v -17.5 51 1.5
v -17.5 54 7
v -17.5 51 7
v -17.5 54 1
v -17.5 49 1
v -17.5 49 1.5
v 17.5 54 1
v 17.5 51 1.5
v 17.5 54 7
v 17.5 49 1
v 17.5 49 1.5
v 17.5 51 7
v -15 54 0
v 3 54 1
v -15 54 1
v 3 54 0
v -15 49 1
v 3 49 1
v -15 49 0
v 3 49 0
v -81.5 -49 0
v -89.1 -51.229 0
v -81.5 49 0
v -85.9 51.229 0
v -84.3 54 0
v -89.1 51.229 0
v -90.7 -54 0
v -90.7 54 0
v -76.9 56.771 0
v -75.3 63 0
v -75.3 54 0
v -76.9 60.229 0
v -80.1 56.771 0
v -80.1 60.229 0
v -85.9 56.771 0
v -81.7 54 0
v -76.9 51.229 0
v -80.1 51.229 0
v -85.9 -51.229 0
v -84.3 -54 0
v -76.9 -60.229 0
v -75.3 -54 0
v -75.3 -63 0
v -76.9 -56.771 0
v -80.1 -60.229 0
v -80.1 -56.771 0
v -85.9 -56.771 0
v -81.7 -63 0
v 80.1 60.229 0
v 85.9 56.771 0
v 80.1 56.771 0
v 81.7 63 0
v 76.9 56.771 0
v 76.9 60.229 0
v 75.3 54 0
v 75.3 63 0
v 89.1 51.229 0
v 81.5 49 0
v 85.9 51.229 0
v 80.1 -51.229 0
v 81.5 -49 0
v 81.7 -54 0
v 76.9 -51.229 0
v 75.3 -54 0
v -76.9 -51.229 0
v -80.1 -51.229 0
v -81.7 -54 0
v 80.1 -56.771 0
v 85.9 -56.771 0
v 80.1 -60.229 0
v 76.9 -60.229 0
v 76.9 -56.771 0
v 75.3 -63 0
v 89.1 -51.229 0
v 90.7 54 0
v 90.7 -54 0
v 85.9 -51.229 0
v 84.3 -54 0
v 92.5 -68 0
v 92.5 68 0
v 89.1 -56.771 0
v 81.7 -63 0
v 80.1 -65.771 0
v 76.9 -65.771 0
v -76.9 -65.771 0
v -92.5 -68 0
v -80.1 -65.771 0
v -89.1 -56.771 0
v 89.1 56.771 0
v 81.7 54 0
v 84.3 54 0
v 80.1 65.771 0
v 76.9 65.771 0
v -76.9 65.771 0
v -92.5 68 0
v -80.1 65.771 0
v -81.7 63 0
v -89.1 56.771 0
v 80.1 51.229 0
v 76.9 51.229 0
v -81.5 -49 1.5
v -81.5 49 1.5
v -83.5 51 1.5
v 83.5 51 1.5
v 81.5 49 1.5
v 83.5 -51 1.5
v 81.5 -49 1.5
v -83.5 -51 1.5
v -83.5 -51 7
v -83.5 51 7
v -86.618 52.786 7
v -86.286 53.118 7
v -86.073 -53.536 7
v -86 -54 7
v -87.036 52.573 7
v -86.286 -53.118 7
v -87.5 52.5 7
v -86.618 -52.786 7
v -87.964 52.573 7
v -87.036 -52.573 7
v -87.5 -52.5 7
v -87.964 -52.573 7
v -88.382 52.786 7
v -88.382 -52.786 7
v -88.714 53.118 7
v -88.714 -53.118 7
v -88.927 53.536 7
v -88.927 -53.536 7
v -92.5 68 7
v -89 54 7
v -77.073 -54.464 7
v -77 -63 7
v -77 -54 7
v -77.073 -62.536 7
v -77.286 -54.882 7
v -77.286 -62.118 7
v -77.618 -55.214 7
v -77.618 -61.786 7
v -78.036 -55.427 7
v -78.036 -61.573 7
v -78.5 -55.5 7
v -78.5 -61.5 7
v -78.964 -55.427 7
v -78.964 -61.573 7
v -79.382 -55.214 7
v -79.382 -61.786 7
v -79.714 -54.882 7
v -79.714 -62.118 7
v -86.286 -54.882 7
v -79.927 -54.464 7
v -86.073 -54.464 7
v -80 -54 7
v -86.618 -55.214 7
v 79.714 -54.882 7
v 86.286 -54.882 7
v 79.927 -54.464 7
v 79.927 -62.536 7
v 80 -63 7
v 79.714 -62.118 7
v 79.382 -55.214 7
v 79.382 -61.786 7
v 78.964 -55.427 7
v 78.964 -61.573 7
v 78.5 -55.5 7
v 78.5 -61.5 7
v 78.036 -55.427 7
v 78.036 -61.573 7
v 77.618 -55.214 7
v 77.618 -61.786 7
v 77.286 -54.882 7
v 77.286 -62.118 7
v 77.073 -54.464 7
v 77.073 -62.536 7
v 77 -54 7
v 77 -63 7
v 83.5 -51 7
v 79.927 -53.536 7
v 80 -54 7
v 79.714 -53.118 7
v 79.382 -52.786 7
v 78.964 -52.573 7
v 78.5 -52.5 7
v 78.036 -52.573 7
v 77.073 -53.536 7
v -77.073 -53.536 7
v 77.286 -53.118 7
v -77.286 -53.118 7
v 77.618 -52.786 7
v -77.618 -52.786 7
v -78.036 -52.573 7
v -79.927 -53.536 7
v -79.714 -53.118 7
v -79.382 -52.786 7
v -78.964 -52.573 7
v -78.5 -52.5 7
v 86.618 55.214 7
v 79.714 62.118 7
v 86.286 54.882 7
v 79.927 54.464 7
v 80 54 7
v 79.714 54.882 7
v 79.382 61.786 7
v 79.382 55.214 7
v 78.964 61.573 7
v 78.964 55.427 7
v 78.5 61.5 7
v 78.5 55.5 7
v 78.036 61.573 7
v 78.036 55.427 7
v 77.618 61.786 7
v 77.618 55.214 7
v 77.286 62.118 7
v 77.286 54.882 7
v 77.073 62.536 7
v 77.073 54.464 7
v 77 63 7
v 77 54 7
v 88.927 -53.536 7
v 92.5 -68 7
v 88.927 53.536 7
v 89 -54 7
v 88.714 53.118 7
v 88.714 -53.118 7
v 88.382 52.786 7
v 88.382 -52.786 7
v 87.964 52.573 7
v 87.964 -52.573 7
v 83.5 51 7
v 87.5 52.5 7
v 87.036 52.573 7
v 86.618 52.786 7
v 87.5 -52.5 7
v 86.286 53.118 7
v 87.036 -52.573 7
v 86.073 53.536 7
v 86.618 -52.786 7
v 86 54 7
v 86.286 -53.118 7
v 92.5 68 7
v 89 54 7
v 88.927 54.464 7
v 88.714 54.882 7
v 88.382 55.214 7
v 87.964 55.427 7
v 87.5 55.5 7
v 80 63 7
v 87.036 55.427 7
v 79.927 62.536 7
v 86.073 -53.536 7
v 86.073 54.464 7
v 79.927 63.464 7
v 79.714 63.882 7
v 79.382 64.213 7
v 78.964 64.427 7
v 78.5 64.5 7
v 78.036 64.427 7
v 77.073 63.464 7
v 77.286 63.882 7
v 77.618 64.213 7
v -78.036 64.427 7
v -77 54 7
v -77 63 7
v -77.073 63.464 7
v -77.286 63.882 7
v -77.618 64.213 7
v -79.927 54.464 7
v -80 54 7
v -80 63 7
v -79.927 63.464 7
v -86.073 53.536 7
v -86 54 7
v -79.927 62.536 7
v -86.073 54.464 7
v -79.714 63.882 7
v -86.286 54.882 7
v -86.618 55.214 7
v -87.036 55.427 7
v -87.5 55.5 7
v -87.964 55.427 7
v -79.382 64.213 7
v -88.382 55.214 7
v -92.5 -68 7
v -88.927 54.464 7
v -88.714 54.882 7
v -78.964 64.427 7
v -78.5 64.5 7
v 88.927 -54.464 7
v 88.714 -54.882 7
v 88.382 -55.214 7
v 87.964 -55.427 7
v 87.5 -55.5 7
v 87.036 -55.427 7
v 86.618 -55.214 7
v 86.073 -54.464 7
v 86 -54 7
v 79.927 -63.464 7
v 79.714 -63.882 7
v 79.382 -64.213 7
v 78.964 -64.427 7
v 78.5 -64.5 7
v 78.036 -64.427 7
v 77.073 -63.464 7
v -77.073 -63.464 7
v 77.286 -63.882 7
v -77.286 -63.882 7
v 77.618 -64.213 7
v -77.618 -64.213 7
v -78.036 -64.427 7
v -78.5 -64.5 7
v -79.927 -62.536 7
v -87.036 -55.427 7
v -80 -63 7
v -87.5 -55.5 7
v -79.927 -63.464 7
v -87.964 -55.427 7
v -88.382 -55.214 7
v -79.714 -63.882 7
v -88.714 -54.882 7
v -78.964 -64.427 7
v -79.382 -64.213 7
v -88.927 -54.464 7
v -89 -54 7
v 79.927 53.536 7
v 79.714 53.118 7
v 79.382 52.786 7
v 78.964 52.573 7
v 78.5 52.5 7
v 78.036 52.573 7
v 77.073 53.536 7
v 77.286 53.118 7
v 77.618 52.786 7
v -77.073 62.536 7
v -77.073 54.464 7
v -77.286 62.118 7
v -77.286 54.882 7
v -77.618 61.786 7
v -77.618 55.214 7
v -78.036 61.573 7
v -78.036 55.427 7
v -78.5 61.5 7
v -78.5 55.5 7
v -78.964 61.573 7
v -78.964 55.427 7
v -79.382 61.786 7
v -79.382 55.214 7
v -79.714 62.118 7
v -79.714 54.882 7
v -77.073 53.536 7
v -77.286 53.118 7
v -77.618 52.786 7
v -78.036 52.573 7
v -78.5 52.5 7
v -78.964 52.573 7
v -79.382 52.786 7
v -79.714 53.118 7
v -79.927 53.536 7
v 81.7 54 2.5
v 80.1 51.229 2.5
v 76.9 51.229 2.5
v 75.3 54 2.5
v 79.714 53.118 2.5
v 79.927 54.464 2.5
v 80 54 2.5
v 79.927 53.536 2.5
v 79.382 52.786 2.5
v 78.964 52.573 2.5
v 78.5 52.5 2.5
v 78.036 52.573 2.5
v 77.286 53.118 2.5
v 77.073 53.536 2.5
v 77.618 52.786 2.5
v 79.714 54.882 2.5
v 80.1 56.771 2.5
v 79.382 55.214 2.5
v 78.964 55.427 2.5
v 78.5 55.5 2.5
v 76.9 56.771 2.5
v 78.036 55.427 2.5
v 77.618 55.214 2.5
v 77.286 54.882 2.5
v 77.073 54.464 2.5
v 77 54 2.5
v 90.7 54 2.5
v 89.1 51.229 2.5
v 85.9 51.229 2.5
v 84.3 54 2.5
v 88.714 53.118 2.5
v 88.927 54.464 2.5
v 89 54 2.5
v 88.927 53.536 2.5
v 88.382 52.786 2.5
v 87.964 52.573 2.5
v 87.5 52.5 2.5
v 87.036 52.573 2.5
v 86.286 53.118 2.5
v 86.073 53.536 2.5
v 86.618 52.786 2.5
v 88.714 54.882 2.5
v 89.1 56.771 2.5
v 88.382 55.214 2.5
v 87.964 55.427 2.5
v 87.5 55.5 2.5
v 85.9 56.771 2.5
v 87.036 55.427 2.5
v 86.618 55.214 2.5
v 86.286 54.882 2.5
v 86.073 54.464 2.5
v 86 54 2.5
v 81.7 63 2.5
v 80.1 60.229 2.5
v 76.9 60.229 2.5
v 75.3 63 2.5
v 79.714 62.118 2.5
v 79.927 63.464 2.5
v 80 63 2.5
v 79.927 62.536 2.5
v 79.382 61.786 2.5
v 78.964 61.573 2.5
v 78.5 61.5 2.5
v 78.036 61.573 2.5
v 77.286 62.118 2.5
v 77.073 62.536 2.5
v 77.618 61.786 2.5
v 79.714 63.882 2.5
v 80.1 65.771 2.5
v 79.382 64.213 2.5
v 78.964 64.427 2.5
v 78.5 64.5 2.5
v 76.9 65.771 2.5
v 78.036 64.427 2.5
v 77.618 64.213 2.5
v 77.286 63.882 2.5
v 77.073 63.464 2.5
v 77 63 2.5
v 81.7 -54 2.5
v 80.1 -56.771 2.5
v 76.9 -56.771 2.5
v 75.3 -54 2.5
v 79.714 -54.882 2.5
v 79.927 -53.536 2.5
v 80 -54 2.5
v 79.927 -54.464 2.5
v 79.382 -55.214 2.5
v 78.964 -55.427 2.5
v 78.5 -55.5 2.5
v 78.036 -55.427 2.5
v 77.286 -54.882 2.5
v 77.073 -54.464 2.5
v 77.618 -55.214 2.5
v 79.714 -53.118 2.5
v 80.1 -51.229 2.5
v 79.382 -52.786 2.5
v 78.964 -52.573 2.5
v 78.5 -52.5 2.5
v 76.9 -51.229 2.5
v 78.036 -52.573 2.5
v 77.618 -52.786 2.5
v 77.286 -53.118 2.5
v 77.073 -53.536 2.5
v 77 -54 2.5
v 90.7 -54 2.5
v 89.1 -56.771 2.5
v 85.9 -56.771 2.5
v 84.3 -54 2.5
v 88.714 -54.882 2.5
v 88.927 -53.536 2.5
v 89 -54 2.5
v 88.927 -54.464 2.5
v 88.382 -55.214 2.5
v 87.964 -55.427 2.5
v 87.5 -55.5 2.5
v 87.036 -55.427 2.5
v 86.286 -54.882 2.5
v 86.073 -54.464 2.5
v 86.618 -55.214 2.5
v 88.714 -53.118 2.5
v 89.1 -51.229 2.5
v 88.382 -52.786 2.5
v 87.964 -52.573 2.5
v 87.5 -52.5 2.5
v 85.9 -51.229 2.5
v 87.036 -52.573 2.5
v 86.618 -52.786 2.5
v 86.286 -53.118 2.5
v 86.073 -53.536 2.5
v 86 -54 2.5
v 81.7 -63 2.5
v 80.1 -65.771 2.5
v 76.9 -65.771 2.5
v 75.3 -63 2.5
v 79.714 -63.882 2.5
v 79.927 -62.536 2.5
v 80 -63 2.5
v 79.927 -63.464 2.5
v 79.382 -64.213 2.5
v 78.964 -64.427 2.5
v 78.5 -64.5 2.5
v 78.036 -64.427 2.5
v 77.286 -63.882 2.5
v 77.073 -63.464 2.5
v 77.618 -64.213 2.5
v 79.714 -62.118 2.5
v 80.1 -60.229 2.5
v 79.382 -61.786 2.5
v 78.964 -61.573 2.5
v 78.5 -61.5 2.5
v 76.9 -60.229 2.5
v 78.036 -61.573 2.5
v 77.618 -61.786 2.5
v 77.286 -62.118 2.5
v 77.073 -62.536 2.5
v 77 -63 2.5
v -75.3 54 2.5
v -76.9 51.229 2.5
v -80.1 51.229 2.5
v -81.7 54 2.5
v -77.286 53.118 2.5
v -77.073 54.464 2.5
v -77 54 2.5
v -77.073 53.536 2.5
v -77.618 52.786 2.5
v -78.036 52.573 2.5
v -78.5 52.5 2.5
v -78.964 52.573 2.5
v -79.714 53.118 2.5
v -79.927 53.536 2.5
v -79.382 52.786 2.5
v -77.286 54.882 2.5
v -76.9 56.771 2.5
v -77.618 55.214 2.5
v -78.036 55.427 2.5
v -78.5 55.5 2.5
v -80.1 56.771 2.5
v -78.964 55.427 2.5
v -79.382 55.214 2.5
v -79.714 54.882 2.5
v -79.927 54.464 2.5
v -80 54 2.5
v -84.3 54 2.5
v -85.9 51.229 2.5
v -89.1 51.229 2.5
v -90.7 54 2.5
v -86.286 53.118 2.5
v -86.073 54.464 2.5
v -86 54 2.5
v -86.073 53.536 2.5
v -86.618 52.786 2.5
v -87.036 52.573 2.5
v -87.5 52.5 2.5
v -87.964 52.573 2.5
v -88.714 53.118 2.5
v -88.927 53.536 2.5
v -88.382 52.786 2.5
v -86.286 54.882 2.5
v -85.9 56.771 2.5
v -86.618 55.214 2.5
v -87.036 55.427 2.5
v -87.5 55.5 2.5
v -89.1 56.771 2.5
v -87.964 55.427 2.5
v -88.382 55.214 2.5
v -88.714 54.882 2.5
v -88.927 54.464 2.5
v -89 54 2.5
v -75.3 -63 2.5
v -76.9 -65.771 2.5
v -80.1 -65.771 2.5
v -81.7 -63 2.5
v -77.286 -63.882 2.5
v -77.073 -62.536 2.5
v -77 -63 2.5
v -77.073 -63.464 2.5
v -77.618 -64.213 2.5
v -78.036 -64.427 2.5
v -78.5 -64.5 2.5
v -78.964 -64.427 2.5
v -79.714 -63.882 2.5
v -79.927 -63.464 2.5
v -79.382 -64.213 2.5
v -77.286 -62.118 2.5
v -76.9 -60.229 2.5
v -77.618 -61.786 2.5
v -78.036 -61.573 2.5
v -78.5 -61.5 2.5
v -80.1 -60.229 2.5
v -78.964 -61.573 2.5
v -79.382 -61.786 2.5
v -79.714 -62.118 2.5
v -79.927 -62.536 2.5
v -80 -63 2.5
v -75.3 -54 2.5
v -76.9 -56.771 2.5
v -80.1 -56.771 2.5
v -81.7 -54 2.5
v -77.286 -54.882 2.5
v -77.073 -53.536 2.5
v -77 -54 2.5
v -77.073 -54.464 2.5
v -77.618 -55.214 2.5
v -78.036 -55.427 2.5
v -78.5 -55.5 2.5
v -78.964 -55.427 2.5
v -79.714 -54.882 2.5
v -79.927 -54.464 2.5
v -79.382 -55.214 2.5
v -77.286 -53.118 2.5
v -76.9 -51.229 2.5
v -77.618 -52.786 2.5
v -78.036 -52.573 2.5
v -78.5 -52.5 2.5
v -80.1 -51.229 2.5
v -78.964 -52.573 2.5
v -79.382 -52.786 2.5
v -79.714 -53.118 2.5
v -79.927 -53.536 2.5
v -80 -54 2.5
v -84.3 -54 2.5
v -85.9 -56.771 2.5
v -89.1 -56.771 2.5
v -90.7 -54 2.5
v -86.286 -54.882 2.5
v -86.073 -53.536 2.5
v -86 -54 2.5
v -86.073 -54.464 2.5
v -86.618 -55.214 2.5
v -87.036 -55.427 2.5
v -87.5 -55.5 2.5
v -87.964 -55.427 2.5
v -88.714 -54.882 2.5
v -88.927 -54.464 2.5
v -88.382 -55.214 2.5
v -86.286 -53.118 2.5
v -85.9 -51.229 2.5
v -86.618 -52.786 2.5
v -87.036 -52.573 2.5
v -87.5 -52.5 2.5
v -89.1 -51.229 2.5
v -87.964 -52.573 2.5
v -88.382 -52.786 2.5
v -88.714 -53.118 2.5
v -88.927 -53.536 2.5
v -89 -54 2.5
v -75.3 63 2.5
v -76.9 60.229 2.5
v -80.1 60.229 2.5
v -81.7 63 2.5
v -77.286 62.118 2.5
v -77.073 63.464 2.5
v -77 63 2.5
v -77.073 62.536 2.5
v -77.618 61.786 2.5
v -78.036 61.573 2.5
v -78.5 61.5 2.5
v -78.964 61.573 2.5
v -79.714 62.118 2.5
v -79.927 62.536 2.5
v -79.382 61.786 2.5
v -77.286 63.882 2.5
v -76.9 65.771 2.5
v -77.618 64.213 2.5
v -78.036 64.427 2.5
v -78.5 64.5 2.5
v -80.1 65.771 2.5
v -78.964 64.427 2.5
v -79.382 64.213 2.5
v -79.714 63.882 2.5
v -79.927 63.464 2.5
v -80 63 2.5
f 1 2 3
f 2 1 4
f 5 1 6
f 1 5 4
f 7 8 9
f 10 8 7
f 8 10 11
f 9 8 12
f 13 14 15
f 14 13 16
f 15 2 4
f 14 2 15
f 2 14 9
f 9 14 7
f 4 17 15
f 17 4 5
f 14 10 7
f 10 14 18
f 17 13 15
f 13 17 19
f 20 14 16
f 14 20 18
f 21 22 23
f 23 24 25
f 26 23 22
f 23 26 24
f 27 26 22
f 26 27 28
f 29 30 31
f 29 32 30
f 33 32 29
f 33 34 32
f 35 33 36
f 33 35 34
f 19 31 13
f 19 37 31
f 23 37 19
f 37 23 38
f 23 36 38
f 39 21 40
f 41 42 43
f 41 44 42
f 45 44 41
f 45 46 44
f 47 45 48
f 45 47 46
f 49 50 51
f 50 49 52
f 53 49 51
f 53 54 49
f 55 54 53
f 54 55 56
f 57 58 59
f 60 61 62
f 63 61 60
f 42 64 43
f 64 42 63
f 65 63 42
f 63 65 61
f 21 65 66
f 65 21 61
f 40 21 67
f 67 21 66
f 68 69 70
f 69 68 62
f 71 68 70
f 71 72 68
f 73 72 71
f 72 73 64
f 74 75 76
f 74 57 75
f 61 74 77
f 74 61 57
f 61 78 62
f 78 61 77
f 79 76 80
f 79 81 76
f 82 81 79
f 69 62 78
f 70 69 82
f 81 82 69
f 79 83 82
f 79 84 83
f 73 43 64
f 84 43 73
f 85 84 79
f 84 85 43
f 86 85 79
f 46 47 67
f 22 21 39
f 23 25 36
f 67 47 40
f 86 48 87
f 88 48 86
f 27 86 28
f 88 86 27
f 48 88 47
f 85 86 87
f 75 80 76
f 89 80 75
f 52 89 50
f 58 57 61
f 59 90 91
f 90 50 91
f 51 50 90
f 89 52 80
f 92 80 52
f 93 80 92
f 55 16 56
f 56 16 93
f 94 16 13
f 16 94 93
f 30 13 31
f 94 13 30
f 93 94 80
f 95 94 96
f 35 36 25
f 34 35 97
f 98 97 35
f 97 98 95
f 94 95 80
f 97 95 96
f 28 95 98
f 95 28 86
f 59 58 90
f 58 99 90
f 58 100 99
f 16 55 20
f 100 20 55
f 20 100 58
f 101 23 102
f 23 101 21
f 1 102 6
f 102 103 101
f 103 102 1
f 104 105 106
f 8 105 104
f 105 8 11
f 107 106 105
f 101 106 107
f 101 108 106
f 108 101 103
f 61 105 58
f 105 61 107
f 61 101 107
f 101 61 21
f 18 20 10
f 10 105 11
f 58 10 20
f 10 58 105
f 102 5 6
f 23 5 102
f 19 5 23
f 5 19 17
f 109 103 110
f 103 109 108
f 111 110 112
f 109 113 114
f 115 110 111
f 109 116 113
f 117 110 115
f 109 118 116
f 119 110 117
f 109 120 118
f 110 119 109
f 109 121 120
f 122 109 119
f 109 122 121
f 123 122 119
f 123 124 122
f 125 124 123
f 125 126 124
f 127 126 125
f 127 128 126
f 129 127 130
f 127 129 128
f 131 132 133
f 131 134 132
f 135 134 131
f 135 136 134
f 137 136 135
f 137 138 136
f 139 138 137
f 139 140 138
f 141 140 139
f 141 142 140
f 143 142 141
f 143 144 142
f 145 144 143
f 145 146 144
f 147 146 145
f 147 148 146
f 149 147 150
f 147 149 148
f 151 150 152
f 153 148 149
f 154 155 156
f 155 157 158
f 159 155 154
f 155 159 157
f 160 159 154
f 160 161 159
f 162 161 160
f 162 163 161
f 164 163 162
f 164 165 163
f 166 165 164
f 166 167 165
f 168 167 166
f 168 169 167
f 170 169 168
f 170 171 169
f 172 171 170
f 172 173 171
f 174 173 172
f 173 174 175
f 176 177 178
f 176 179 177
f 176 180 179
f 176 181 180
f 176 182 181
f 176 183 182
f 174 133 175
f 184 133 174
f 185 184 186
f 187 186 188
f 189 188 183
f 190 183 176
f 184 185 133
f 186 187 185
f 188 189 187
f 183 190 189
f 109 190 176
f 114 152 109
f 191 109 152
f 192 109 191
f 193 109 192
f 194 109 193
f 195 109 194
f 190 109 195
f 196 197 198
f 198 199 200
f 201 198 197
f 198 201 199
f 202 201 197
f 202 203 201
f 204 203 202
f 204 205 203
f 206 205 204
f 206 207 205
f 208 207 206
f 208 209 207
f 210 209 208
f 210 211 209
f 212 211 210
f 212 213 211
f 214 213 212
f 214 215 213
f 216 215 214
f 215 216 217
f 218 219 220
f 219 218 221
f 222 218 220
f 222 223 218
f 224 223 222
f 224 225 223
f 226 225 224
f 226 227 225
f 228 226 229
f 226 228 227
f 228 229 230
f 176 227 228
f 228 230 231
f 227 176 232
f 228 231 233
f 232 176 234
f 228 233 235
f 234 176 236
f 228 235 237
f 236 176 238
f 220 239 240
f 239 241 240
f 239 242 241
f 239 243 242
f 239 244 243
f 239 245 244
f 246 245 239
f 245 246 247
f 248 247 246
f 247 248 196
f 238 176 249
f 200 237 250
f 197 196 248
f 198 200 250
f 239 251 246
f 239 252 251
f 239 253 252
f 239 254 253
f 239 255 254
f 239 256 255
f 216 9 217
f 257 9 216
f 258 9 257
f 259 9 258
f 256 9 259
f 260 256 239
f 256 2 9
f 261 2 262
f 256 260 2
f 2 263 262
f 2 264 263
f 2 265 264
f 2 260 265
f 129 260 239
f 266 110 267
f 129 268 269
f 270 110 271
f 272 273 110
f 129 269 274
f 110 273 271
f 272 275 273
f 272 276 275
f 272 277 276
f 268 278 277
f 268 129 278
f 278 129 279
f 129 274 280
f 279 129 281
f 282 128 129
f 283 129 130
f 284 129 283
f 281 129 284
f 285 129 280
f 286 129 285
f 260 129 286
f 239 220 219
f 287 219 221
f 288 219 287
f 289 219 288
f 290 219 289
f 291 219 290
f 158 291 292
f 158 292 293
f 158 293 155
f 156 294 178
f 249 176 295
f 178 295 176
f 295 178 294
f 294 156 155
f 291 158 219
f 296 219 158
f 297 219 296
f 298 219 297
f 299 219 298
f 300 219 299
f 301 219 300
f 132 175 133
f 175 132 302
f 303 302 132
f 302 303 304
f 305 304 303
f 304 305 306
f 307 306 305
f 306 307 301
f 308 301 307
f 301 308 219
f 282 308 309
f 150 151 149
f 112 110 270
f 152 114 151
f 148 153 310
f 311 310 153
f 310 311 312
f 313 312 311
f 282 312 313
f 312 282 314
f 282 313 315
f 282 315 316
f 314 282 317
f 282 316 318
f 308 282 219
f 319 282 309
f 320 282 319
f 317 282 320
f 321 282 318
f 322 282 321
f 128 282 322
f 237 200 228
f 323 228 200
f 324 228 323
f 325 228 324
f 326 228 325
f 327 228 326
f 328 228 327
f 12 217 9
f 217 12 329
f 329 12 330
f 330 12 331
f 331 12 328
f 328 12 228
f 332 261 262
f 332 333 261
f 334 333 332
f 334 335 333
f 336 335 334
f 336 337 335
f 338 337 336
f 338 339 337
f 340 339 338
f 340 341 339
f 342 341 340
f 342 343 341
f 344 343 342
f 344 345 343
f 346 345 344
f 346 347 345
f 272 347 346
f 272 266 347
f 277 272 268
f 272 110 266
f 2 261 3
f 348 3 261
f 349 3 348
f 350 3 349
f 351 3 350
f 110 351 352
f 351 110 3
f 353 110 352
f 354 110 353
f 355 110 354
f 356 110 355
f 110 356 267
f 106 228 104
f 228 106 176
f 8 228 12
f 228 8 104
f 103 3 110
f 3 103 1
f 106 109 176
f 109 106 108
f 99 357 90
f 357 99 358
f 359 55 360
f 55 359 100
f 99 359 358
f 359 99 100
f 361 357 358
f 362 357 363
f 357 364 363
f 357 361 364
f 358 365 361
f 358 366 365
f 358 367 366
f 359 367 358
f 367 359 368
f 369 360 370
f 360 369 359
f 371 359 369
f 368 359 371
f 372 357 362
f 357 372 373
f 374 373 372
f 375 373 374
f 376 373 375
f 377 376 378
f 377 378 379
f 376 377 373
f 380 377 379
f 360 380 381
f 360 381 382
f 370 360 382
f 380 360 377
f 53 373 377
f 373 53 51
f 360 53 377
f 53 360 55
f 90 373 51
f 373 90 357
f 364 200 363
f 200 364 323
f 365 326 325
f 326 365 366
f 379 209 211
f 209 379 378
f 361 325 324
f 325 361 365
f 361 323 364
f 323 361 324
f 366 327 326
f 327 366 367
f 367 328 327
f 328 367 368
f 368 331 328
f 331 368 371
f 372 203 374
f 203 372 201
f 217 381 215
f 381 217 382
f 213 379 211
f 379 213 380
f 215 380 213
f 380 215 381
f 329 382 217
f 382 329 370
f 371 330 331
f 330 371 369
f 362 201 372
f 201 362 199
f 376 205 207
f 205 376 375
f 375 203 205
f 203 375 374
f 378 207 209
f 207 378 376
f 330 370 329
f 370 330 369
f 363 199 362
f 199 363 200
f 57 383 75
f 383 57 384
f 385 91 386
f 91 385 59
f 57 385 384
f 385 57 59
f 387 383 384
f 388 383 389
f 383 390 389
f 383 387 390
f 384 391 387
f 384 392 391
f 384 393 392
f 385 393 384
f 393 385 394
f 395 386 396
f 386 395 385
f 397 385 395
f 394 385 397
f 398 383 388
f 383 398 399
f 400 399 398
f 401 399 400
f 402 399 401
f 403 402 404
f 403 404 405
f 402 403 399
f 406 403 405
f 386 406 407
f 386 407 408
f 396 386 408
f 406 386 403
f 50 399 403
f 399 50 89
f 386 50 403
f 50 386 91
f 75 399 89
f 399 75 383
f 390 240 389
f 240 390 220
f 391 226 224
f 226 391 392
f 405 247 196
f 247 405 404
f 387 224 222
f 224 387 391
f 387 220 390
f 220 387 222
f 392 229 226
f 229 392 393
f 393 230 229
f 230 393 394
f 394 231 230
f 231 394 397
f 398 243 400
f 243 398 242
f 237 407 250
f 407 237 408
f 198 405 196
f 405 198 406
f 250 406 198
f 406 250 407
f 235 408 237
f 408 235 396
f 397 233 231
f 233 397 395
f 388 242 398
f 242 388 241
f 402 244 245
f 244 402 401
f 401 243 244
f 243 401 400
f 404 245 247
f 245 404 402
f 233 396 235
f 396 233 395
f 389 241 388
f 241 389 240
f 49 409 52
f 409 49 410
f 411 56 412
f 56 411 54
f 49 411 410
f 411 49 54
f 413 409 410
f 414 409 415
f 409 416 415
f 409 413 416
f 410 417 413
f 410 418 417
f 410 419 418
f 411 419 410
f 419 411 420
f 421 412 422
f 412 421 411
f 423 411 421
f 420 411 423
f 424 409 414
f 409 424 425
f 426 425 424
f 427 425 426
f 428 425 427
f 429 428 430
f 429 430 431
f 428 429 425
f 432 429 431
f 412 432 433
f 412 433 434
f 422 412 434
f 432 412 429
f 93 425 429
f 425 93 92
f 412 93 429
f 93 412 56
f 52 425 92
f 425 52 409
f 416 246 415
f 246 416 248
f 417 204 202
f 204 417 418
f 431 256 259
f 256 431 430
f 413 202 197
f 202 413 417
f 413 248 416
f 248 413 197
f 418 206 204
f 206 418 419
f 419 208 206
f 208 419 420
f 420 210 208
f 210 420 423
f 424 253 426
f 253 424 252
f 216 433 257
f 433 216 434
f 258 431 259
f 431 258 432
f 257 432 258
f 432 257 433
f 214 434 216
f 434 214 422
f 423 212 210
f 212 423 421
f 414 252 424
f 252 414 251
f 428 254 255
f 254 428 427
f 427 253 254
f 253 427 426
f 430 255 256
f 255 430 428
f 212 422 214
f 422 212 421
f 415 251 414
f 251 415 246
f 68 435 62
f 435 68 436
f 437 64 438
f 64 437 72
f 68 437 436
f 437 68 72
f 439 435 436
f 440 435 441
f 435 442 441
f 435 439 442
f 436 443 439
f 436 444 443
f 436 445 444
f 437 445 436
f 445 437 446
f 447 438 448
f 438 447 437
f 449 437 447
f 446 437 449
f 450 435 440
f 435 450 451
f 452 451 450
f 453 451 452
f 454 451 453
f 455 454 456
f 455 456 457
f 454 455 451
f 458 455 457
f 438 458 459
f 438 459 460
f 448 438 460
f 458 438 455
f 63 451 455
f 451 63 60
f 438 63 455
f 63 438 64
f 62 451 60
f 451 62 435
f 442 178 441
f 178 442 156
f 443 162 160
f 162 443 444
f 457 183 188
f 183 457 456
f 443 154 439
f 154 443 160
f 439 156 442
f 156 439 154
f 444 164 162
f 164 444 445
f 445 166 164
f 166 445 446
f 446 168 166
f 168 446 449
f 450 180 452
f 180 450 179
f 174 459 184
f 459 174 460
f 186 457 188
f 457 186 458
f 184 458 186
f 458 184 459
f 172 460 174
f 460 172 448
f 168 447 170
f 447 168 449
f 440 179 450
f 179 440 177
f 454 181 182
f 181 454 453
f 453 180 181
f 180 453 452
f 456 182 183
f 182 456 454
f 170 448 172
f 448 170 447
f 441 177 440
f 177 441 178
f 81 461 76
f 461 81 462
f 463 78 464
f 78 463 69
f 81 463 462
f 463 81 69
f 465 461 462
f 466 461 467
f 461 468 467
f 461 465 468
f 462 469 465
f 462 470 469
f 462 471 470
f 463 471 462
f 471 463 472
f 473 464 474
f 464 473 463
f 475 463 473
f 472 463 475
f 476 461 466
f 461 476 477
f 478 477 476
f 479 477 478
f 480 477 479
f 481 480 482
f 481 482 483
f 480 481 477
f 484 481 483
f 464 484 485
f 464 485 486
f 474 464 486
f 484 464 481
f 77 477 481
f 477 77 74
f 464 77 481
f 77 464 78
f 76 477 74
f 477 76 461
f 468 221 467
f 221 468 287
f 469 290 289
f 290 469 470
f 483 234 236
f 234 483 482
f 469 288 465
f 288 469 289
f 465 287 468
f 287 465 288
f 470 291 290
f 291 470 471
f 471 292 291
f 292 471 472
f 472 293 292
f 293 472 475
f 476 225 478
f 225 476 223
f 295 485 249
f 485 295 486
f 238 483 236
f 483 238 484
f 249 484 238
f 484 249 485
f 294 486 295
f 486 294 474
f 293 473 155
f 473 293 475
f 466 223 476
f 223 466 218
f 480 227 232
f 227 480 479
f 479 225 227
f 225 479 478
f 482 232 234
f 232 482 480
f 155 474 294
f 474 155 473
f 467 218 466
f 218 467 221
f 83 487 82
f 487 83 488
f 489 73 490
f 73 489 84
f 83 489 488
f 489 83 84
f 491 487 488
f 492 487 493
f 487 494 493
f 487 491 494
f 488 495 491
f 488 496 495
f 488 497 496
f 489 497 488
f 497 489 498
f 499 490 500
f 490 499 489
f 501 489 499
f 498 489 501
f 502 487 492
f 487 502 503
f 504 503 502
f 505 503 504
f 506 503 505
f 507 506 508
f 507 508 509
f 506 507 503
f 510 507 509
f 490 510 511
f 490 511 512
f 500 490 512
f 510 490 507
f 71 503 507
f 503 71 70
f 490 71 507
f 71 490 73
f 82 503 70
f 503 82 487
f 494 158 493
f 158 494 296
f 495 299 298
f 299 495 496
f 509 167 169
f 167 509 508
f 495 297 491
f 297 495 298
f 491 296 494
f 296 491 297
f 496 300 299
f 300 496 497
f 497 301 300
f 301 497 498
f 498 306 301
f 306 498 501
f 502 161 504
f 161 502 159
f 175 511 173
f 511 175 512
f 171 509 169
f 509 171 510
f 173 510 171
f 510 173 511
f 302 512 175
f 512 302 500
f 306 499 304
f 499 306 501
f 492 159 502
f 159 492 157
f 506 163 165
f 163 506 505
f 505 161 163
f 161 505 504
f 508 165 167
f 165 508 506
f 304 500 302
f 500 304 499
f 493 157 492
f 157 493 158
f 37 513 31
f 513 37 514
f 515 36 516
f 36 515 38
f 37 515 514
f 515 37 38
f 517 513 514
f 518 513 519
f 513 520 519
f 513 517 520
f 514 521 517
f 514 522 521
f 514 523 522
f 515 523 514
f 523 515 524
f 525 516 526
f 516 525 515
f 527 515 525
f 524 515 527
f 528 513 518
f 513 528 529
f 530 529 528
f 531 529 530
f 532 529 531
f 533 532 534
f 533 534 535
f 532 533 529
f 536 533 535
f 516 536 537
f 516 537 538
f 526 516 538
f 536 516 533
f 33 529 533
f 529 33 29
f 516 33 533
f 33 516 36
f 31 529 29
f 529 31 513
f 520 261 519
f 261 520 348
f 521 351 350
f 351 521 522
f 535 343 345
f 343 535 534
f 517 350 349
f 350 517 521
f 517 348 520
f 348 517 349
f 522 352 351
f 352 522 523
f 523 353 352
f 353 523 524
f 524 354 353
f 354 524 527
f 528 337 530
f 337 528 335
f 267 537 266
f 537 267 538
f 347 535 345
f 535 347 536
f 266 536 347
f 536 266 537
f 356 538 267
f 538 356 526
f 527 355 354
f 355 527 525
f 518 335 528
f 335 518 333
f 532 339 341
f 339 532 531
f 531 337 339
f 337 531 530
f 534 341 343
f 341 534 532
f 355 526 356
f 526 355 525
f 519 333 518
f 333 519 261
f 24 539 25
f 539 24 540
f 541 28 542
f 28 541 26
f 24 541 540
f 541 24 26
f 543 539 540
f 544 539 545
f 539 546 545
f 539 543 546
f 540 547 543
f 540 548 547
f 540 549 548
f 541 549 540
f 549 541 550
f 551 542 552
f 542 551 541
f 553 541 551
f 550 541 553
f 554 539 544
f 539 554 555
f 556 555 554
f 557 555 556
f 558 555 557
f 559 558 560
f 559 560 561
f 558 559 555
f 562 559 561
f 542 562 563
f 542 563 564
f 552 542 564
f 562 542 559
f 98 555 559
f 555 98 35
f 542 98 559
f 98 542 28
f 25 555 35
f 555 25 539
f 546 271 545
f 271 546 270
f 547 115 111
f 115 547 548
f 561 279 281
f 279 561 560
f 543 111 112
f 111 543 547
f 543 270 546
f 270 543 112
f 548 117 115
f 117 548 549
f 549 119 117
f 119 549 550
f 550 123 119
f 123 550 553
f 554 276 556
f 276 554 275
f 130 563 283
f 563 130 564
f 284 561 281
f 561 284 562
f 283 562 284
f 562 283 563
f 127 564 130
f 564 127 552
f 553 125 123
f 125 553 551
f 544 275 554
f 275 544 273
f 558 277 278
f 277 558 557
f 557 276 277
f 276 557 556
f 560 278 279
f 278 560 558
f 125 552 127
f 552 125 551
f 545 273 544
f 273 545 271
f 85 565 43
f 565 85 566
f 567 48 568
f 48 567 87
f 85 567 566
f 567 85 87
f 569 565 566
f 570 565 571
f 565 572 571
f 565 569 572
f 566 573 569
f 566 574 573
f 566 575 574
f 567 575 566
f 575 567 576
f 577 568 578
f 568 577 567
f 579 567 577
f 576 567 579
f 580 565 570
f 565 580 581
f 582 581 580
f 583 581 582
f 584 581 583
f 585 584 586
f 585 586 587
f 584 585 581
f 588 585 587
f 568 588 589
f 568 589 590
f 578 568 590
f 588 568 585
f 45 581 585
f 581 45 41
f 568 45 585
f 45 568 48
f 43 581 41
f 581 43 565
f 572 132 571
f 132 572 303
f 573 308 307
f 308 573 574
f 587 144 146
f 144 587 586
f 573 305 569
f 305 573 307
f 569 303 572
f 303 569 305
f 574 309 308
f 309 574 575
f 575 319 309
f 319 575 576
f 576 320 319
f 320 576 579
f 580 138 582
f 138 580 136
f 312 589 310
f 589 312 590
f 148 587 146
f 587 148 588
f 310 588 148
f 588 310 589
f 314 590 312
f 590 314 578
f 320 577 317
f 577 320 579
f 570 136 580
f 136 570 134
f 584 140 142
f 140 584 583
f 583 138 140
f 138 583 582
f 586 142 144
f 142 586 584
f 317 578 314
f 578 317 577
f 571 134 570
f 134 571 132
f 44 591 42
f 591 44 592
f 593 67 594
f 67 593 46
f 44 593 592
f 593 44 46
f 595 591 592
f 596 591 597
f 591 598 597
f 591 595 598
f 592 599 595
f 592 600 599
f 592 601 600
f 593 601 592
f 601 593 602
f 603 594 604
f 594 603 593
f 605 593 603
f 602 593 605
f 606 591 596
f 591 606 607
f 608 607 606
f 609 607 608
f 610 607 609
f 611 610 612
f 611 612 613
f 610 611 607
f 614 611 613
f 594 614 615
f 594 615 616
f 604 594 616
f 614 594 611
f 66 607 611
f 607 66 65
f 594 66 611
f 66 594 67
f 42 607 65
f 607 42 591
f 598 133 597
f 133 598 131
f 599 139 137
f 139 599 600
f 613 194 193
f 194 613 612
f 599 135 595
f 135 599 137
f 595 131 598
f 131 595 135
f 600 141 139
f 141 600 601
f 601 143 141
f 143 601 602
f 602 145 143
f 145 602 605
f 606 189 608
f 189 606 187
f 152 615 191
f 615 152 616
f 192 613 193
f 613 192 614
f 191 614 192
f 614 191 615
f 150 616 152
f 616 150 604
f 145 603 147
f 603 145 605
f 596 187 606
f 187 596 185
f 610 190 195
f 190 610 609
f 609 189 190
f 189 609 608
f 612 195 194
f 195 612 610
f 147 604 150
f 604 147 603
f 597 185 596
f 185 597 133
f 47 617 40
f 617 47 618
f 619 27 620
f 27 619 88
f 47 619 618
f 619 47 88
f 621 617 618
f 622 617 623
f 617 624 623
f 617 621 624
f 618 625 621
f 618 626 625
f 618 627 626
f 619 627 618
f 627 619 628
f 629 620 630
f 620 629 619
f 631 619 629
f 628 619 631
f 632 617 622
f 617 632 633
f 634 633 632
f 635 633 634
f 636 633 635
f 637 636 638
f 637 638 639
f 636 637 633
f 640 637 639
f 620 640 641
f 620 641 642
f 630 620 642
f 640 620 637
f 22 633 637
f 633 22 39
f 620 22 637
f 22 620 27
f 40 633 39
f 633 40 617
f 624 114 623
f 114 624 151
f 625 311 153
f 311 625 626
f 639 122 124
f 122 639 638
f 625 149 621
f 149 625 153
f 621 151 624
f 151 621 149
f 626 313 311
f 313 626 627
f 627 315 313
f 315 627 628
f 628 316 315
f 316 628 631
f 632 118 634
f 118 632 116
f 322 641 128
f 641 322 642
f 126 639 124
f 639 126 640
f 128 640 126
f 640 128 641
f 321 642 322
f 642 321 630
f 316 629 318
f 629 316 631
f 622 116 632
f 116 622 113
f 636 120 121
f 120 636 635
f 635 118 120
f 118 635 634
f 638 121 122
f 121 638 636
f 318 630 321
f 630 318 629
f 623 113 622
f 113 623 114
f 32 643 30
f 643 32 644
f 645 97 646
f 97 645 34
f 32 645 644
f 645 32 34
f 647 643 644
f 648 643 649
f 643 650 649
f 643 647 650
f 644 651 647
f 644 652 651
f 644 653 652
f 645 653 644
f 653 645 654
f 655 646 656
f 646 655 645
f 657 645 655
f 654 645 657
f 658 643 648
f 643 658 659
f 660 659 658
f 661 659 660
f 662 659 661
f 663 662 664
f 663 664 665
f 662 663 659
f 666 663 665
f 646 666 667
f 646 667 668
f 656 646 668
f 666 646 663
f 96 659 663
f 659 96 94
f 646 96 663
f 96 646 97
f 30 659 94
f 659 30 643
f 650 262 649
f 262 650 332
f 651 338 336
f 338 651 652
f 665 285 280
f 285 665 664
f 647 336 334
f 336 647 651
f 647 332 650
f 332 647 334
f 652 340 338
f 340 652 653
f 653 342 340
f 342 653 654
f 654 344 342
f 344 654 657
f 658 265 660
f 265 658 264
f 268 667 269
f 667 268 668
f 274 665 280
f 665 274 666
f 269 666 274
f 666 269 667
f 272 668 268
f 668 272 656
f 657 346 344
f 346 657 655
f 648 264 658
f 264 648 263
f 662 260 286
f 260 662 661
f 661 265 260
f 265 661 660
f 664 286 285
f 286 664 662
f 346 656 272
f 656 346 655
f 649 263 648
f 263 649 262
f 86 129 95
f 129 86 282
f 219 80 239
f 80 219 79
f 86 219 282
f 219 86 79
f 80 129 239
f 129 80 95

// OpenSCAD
// file: utils/hex_trap.scad
function make_r_for_screw_standard(r_trap) =
((r_trap==2) ? 2.2 : (r_trap==2.5) ? 2.5 : (r_trap==3) ? 3.2 : (r_trap==4) ? 4.2 : r_trap);
//Utimaker 2 @ ESOC
//((r_trap==2) ? 2.2 : (r_trap==2.5) ? 2.5 : (r_trap==3) ? 3.2 : (r_trap==4) ? 4.2 : r_trap);

function make_r_hole_for_screw_standard(r_trap) =
((r_trap==2) ? 1 : (r_trap==2.5) ? 1.5 : (r_trap==3) ? 1.5 : (r_trap==4) ? 2.5 : r_trap);
//Ultimaker2 @ ESOC
//((r_trap==2) ? 1.5 : (r_trap==2.5) ? 2 : (r_trap==3) ? 2 : (r_trap==4) ? 2.5 : r_trap);

module hex_hole(h_trap,h_hole,r_trap,rot)
{
    
    echo("hex_hole h_trap[",h_trap,"]");
    echo("hex_hole h_hole[",h_hole,"]");
    local_r_trap=make_r_for_screw_standard(r_trap);
    echo("hex_hole r_trap[",r_trap,"]");
    local_r_hole=make_r_hole_for_screw_standard(r_trap);
    echo("hex_hole local_r_hole[",local_r_hole,"]");
    
    rotate([rot,0,0]) {
translate([0,0,h_hole])
{
	cylinder(h = h_trap, r = local_r_trap, $fn = 6);
}

	cylinder(h = h_hole, r = local_r_hole, $fn = 20);

}
}
module hex_hole_fill_bottom(h_trap,h_hole,r_trap,r_hole,rot)
{
    
    
    local_r_trap=make_r_for_screw_standard(r_trap);
    
    
    
    rotate([rot,0,0]) {
translate([0,0,h_hole-0.3])
{
	cylinder(h = 0.3, r = local_r_trap, $fn = 6);
}

	

}
}
module hex_hole_fill_top(h_trap,h_hole,r_trap,r_hole,rot)
{
    
    
    local_r_trap=make_r_for_screw_standard(r_trap);
    rotate([rot,0,0]) {


	cylinder(h = 0.3, r = r_hole, $fn = 20);

}
}
// file: back_plate.scad
include <configuration/general.scad>;
module back_plate()
{
    translate ([0,0,BACK_PLATE_THICKNESS/2]){
cube(size = [HDMI_HOLES_LENGTH+2*(SCREW_STANDARD_M3),HDMI_HOLES_WIDTH+2*(SCREW_STANDARD_M3*3+GAP_MAINSCREWS_HDMI+BASE_OUTERPAD_HDMI),BACK_PLATE_THICKNESS], center = true);
    translate ([0,0,BACK_PLATE_THICKNESS/2])
    cube([10,10,BACK_PLATE_THICKNESS],center=true);
    }
}
back_plate();
// file: configuration/general.scad
//Screw standards
SCREW_STANDARD_M3=3;

//HDMI screen cover
HDMI_HOLES_LENGTH=157;
HDMI_HOLES_WIDTH=108;
GAP_MAINSCREWS_HDMI=3;
BASE_OUTERPAD_HDMI=2;
FRONT_COVER_TRAPS_TOLERANCE=0.1;


//Back plate
BACK_PLATE_CENTER_BLOB=6;
BACK_PLATE_WALL=3;
BACK_PLATE_THICKNESS=1;
SCREW_BLOCK_SIZE=12;

BACK_PLATE_ADAPTER0_THICKNESS=1;
BACK_PLATE_ADAPTER0_SPACING=100;

//Adapter0
CIRCUIT_BOARD_SCREWSTANDARD0=2;
CIRCUIT_BOARD_ADAPTER0_SPACING=10;
CIRCUIT_BOARD_ADAPTER0_SCREW_HEIGHT=6-BACK_PLATE_THICKNESS;
CIRCUIT_BOARD_ADAPTER0_SCREW_TRAP_HEIGHT=1.6;
CIRCUIT_BOARD_ADAPTER0_PLUS_WIDTH=5;
CIRCUIT_BOARD_ADAPTER0_BASE_WIDTH=CIRCUIT_BOARD_ADAPTER0_SPACING+10;
// main file
include <configuration/general.scad>;
use <back_plate.scad>;
include <utils/hex_trap.scad>;


layer1_length=163;
layer1_width=98;
layer1_height=1.5;
layer2_length=167;
layer2_width=102;

screw_standard=SCREW_STANDARD_M3;
nut_height=2.5;

gap_mainscrews=GAP_MAINSCREWS_HDMI;
base_height=7;
base_outerpad=BASE_OUTERPAD_HDMI;
trim1_length=5;
trim1_width=5;

base_back_content_height=0;

left_size_top=55;
left_size_bottom=100;
join_length=15;


explode=0;

base_length=HDMI_HOLES_LENGTH+2*(screw_standard*3+gap_mainscrews+base_outerpad);
base_width=HDMI_HOLES_WIDTH+2*(screw_standard*3+gap_mainscrews+base_outerpad);
module base_cube()
{
  
    translate([0,0,base_height/2]) cube(size = [base_length,base_width,base_height], center = true); 
    
    
}

module base_left1()
{
    translate([base_length/2-left_size_top/2,base_width/2-base_width/4+150*explode,base_height/2]) cube(size = [left_size_top,base_width/2,base_height], center = true); 
    translate([base_length/2-left_size_top-join_length/2,base_width/2-base_width/4+150*explode,nut_height/2]) cube(size = [join_length,base_width/2,nut_height], center = true); 
    
    color([0,0,1])
    translate([base_length/2-left_size_bottom/2,-base_width/2+base_width/4+150*explode,base_height/2]) cube(size = [left_size_bottom,base_width/2,base_height], center = true); 
    color([0,0,1])
    translate([base_length/2-left_size_bottom-join_length/2,-base_width/2+base_width/4+150*explode,nut_height/2]) cube(size = [join_length,base_width/2,nut_height], center = true); 
}

module base_right1()
{
    
    translate([-base_length/2+(base_length/2-left_size_top/2-join_length/2),base_width/2-base_width/4-150*explode,base_height/2]) cube(size = [(base_length-left_size_top-join_length),base_width/2,base_height], center = true); 
    translate([-base_length/2+(base_length-left_size_top)-join_length/2,base_width/2-base_width/4-150*explode,nut_height+(base_height-nut_height)/2]) cube(size = [join_length,base_width/2,base_height-nut_height], center = true); 
    leg_width=2;
    color([0,1,0])
    translate([-base_length/2+(base_length-left_size_top)-leg_width/2,base_width/2-base_width/4-150*explode,nut_height/2]) cube(size = [leg_width,base_width/2,nut_height], center = true); 
    
    
    color([1,0,0])
    translate([-base_length/2+(base_length/2-left_size_bottom/2-join_length/2),-base_width/2+base_width/4-150*explode,base_height/2]) cube(size = [(base_length-left_size_bottom-join_length),base_width/2,base_height], center = true); 
    
    color([1,0,0])
   translate([-base_length/2+(base_length-left_size_bottom)-join_length/2,-base_width/2+base_width/4-150*explode,nut_height+(base_height-nut_height)/2]) cube(size = [join_length,base_width/2,base_height-nut_height], center = true); 
    color([0,1,0])
    translate([-base_length/2+(base_length-left_size_bottom)-leg_width/2,-base_width/2+base_width/4-150*explode,nut_height/2]) cube(size = [leg_width,base_width/2,nut_height], center = true); 
    
    
}

module base_screen()
{
                        //screen layer 1 cube
                    translate([0,0,layer1_height/2])
                        {
                            translate([0,0,20*explode]) cube(size = [layer1_length,layer1_width,layer1_height], center = true);
                            //screen layer 2 cube
                            wHeightLayer2=(base_height-layer1_height);
                            translate([0,0,layer1_height/2+wHeightLayer2/2+20*explode]) cube(size = [layer2_length,layer2_width,wHeightLayer2], center = true);
                        }  
}
                    
module base_trims()
{
    
    color([0,0,1])
    
    /*
    translate([HDMI_HOLES_LENGTH/2+screw_standard*2+gap_mainscrews/2+base_outerpad/2+trim1_length/2,HDMI_HOLES_WIDTH/2+screw_standard*2+gap_mainscrews/2+base_outerpad/2+trim1_width/2,base_height/2+7*explode]) cube(size = [trim1_length,trim1_width,base_height], center = true);*/
    translate([0,HDMI_HOLES_WIDTH/2-10,base_height/2+1+7*explode]) cube([35,20,base_height],center=true);
    translate([-HDMI_HOLES_LENGTH/2+72.5,HDMI_HOLES_WIDTH/2-10,base_height/2+7*explode]) cube([18,20,base_height],center=true);
}
module base_traps()
{
    local_nut_height=nut_height+FRONT_COVER_TRAPS_TOLERANCE;
    local_hole_height=base_height-nut_height+FRONT_COVER_TRAPS_TOLERANCE;
    color([0,1,0]){
            translate([HDMI_HOLES_LENGTH/2,HDMI_HOLES_WIDTH/2,base_height+FRONT_COVER_TRAPS_TOLERANCE+0*explode]) hex_hole(h_trap=local_nut_height,h_hole=local_hole_height,r_trap=screw_standard,rot=180);
            translate([HDMI_HOLES_LENGTH/2+screw_standard*2+gap_mainscrews,HDMI_HOLES_WIDTH/2,base_height+FRONT_COVER_TRAPS_TOLERANCE+50*explode]) hex_hole(h_trap=local_nut_height,h_hole=local_hole_height,r_trap=screw_standard,rot=180);
            translate([HDMI_HOLES_LENGTH/2,HDMI_HOLES_WIDTH/2+screw_standard*2+gap_mainscrews,base_height+FRONT_COVER_TRAPS_TOLERANCE+50*explode]) hex_hole(h_trap=local_nut_height,h_hole=local_hole_height,r_trap=screw_standard,rot=180);
        
            translate([HDMI_HOLES_LENGTH/2,-HDMI_HOLES_WIDTH/2,base_height+FRONT_COVER_TRAPS_TOLERANCE+50*explode]) hex_hole(h_trap=local_nut_height,h_hole=local_hole_height,r_trap=screw_standard,rot=180);
            translate([HDMI_HOLES_LENGTH/2+screw_standard*2+gap_mainscrews,-HDMI_HOLES_WIDTH/2,base_height+FRONT_COVER_TRAPS_TOLERANCE+50*explode]) hex_hole(h_trap=local_nut_height,h_hole=local_hole_height,r_trap=screw_standard,rot=180);
            translate([HDMI_HOLES_LENGTH/2,-(HDMI_HOLES_WIDTH/2+screw_standard*2+gap_mainscrews),base_height+FRONT_COVER_TRAPS_TOLERANCE+50*explode]) hex_hole(h_trap=local_nut_height,h_hole=local_hole_height,r_trap=screw_standard,rot=180);
        
            translate([-HDMI_HOLES_LENGTH/2,HDMI_HOLES_WIDTH/2,base_height+FRONT_COVER_TRAPS_TOLERANCE+50*explode]) hex_hole(h_trap=local_nut_height,h_hole=local_hole_height,r_trap=screw_standard,rot=180);
            translate([-(HDMI_HOLES_LENGTH/2+screw_standard*2+gap_mainscrews),HDMI_HOLES_WIDTH/2,base_height+FRONT_COVER_TRAPS_TOLERANCE+50*explode]) hex_hole(h_trap=local_nut_height,h_hole=local_hole_height,r_trap=screw_standard,rot=180);
            translate([-HDMI_HOLES_LENGTH/2,-(HDMI_HOLES_WIDTH/2+screw_standard*2+gap_mainscrews),base_height+FRONT_COVER_TRAPS_TOLERANCE+50*explode]) hex_hole(h_trap=local_nut_height,h_hole=local_hole_height,r_trap=screw_standard,rot=180);
        
            translate([-HDMI_HOLES_LENGTH/2,-HDMI_HOLES_WIDTH/2,base_height+FRONT_COVER_TRAPS_TOLERANCE+50*explode]) hex_hole(h_trap=local_nut_height,h_hole=local_hole_height,r_trap=screw_standard,rot=180);
            translate([-(HDMI_HOLES_LENGTH/2+screw_standard*2+gap_mainscrews),-HDMI_HOLES_WIDTH/2,base_height+FRONT_COVER_TRAPS_TOLERANCE+50*explode]) hex_hole(h_trap=local_nut_height,h_hole=local_hole_height,r_trap=screw_standard,rot=180);
            translate([-HDMI_HOLES_LENGTH/2,+(HDMI_HOLES_WIDTH/2+screw_standard*2+gap_mainscrews),base_height+FRONT_COVER_TRAPS_TOLERANCE+50*explode]) hex_hole(h_trap=local_nut_height,h_hole=local_hole_height,r_trap=screw_standard,rot=180);
            }
            
            //translate([base_length/2-left_size_bottom-join_length/2,-HDMI_HOLES_WIDTH/2-gap_mainscrews,0+50*explode]) hex_hole(nut_height,base_height-nut_height,screw_standard,screw_hole,180);
            //translate([base_length/2-left_size_top-join_length/2,+HDMI_HOLES_WIDTH/2+gap_mainscrews,0+50*explode]) hex_hole(nut_height,base_height-nut_height,screw_standard,screw_hole,180);
}
module base_back()
{
    
    translate([0,0,base_height+base_back_content_height+explode*70])  
    back_plate();
    
}

module hdmi_plate()
{
    if (explode)
        {
            
            //base cube
            base_cube();
            base_left1();
            base_right1();
            base_screen();
            base_traps();
            base_trims();
            //base_back();
        }
    else
        {
            difference()
                {
                    //base cube
                    base_cube();
                    union(){
                    base_screen();
                    base_traps();
                    base_trims();
                    }
                }
                
           //base_back();
        }
    
}
module left_piece()
{
    intersection()
                {
                    hdmi_plate();
                
           base_left1();}
}

module right_piece()
{
    intersection()
                {
                    {
                    hdmi_plate();
                    }
                
           base_right1();}
           
translate([base_length/2-left_size_bottom-join_length/2,-HDMI_HOLES_WIDTH/2-gap_mainscrews,base_height+50*explode]) hex_hole_fill_bottom(nut_height,base_height-nut_height,screw_standard,screw_hole,180);
            translate([base_length/2-left_size_top-join_length/2,+HDMI_HOLES_WIDTH/2+gap_mainscrews,base_height+50*explode]) hex_hole_fill_bottom(nut_height,base_height-nut_height,screw_standard,screw_hole,180);
}
//left_piece();
//right_piece();
//intersection(){
hdmi_plate();
//    translate([base_length/2,base_width/2,0]) cube(50,center=true);
//}
